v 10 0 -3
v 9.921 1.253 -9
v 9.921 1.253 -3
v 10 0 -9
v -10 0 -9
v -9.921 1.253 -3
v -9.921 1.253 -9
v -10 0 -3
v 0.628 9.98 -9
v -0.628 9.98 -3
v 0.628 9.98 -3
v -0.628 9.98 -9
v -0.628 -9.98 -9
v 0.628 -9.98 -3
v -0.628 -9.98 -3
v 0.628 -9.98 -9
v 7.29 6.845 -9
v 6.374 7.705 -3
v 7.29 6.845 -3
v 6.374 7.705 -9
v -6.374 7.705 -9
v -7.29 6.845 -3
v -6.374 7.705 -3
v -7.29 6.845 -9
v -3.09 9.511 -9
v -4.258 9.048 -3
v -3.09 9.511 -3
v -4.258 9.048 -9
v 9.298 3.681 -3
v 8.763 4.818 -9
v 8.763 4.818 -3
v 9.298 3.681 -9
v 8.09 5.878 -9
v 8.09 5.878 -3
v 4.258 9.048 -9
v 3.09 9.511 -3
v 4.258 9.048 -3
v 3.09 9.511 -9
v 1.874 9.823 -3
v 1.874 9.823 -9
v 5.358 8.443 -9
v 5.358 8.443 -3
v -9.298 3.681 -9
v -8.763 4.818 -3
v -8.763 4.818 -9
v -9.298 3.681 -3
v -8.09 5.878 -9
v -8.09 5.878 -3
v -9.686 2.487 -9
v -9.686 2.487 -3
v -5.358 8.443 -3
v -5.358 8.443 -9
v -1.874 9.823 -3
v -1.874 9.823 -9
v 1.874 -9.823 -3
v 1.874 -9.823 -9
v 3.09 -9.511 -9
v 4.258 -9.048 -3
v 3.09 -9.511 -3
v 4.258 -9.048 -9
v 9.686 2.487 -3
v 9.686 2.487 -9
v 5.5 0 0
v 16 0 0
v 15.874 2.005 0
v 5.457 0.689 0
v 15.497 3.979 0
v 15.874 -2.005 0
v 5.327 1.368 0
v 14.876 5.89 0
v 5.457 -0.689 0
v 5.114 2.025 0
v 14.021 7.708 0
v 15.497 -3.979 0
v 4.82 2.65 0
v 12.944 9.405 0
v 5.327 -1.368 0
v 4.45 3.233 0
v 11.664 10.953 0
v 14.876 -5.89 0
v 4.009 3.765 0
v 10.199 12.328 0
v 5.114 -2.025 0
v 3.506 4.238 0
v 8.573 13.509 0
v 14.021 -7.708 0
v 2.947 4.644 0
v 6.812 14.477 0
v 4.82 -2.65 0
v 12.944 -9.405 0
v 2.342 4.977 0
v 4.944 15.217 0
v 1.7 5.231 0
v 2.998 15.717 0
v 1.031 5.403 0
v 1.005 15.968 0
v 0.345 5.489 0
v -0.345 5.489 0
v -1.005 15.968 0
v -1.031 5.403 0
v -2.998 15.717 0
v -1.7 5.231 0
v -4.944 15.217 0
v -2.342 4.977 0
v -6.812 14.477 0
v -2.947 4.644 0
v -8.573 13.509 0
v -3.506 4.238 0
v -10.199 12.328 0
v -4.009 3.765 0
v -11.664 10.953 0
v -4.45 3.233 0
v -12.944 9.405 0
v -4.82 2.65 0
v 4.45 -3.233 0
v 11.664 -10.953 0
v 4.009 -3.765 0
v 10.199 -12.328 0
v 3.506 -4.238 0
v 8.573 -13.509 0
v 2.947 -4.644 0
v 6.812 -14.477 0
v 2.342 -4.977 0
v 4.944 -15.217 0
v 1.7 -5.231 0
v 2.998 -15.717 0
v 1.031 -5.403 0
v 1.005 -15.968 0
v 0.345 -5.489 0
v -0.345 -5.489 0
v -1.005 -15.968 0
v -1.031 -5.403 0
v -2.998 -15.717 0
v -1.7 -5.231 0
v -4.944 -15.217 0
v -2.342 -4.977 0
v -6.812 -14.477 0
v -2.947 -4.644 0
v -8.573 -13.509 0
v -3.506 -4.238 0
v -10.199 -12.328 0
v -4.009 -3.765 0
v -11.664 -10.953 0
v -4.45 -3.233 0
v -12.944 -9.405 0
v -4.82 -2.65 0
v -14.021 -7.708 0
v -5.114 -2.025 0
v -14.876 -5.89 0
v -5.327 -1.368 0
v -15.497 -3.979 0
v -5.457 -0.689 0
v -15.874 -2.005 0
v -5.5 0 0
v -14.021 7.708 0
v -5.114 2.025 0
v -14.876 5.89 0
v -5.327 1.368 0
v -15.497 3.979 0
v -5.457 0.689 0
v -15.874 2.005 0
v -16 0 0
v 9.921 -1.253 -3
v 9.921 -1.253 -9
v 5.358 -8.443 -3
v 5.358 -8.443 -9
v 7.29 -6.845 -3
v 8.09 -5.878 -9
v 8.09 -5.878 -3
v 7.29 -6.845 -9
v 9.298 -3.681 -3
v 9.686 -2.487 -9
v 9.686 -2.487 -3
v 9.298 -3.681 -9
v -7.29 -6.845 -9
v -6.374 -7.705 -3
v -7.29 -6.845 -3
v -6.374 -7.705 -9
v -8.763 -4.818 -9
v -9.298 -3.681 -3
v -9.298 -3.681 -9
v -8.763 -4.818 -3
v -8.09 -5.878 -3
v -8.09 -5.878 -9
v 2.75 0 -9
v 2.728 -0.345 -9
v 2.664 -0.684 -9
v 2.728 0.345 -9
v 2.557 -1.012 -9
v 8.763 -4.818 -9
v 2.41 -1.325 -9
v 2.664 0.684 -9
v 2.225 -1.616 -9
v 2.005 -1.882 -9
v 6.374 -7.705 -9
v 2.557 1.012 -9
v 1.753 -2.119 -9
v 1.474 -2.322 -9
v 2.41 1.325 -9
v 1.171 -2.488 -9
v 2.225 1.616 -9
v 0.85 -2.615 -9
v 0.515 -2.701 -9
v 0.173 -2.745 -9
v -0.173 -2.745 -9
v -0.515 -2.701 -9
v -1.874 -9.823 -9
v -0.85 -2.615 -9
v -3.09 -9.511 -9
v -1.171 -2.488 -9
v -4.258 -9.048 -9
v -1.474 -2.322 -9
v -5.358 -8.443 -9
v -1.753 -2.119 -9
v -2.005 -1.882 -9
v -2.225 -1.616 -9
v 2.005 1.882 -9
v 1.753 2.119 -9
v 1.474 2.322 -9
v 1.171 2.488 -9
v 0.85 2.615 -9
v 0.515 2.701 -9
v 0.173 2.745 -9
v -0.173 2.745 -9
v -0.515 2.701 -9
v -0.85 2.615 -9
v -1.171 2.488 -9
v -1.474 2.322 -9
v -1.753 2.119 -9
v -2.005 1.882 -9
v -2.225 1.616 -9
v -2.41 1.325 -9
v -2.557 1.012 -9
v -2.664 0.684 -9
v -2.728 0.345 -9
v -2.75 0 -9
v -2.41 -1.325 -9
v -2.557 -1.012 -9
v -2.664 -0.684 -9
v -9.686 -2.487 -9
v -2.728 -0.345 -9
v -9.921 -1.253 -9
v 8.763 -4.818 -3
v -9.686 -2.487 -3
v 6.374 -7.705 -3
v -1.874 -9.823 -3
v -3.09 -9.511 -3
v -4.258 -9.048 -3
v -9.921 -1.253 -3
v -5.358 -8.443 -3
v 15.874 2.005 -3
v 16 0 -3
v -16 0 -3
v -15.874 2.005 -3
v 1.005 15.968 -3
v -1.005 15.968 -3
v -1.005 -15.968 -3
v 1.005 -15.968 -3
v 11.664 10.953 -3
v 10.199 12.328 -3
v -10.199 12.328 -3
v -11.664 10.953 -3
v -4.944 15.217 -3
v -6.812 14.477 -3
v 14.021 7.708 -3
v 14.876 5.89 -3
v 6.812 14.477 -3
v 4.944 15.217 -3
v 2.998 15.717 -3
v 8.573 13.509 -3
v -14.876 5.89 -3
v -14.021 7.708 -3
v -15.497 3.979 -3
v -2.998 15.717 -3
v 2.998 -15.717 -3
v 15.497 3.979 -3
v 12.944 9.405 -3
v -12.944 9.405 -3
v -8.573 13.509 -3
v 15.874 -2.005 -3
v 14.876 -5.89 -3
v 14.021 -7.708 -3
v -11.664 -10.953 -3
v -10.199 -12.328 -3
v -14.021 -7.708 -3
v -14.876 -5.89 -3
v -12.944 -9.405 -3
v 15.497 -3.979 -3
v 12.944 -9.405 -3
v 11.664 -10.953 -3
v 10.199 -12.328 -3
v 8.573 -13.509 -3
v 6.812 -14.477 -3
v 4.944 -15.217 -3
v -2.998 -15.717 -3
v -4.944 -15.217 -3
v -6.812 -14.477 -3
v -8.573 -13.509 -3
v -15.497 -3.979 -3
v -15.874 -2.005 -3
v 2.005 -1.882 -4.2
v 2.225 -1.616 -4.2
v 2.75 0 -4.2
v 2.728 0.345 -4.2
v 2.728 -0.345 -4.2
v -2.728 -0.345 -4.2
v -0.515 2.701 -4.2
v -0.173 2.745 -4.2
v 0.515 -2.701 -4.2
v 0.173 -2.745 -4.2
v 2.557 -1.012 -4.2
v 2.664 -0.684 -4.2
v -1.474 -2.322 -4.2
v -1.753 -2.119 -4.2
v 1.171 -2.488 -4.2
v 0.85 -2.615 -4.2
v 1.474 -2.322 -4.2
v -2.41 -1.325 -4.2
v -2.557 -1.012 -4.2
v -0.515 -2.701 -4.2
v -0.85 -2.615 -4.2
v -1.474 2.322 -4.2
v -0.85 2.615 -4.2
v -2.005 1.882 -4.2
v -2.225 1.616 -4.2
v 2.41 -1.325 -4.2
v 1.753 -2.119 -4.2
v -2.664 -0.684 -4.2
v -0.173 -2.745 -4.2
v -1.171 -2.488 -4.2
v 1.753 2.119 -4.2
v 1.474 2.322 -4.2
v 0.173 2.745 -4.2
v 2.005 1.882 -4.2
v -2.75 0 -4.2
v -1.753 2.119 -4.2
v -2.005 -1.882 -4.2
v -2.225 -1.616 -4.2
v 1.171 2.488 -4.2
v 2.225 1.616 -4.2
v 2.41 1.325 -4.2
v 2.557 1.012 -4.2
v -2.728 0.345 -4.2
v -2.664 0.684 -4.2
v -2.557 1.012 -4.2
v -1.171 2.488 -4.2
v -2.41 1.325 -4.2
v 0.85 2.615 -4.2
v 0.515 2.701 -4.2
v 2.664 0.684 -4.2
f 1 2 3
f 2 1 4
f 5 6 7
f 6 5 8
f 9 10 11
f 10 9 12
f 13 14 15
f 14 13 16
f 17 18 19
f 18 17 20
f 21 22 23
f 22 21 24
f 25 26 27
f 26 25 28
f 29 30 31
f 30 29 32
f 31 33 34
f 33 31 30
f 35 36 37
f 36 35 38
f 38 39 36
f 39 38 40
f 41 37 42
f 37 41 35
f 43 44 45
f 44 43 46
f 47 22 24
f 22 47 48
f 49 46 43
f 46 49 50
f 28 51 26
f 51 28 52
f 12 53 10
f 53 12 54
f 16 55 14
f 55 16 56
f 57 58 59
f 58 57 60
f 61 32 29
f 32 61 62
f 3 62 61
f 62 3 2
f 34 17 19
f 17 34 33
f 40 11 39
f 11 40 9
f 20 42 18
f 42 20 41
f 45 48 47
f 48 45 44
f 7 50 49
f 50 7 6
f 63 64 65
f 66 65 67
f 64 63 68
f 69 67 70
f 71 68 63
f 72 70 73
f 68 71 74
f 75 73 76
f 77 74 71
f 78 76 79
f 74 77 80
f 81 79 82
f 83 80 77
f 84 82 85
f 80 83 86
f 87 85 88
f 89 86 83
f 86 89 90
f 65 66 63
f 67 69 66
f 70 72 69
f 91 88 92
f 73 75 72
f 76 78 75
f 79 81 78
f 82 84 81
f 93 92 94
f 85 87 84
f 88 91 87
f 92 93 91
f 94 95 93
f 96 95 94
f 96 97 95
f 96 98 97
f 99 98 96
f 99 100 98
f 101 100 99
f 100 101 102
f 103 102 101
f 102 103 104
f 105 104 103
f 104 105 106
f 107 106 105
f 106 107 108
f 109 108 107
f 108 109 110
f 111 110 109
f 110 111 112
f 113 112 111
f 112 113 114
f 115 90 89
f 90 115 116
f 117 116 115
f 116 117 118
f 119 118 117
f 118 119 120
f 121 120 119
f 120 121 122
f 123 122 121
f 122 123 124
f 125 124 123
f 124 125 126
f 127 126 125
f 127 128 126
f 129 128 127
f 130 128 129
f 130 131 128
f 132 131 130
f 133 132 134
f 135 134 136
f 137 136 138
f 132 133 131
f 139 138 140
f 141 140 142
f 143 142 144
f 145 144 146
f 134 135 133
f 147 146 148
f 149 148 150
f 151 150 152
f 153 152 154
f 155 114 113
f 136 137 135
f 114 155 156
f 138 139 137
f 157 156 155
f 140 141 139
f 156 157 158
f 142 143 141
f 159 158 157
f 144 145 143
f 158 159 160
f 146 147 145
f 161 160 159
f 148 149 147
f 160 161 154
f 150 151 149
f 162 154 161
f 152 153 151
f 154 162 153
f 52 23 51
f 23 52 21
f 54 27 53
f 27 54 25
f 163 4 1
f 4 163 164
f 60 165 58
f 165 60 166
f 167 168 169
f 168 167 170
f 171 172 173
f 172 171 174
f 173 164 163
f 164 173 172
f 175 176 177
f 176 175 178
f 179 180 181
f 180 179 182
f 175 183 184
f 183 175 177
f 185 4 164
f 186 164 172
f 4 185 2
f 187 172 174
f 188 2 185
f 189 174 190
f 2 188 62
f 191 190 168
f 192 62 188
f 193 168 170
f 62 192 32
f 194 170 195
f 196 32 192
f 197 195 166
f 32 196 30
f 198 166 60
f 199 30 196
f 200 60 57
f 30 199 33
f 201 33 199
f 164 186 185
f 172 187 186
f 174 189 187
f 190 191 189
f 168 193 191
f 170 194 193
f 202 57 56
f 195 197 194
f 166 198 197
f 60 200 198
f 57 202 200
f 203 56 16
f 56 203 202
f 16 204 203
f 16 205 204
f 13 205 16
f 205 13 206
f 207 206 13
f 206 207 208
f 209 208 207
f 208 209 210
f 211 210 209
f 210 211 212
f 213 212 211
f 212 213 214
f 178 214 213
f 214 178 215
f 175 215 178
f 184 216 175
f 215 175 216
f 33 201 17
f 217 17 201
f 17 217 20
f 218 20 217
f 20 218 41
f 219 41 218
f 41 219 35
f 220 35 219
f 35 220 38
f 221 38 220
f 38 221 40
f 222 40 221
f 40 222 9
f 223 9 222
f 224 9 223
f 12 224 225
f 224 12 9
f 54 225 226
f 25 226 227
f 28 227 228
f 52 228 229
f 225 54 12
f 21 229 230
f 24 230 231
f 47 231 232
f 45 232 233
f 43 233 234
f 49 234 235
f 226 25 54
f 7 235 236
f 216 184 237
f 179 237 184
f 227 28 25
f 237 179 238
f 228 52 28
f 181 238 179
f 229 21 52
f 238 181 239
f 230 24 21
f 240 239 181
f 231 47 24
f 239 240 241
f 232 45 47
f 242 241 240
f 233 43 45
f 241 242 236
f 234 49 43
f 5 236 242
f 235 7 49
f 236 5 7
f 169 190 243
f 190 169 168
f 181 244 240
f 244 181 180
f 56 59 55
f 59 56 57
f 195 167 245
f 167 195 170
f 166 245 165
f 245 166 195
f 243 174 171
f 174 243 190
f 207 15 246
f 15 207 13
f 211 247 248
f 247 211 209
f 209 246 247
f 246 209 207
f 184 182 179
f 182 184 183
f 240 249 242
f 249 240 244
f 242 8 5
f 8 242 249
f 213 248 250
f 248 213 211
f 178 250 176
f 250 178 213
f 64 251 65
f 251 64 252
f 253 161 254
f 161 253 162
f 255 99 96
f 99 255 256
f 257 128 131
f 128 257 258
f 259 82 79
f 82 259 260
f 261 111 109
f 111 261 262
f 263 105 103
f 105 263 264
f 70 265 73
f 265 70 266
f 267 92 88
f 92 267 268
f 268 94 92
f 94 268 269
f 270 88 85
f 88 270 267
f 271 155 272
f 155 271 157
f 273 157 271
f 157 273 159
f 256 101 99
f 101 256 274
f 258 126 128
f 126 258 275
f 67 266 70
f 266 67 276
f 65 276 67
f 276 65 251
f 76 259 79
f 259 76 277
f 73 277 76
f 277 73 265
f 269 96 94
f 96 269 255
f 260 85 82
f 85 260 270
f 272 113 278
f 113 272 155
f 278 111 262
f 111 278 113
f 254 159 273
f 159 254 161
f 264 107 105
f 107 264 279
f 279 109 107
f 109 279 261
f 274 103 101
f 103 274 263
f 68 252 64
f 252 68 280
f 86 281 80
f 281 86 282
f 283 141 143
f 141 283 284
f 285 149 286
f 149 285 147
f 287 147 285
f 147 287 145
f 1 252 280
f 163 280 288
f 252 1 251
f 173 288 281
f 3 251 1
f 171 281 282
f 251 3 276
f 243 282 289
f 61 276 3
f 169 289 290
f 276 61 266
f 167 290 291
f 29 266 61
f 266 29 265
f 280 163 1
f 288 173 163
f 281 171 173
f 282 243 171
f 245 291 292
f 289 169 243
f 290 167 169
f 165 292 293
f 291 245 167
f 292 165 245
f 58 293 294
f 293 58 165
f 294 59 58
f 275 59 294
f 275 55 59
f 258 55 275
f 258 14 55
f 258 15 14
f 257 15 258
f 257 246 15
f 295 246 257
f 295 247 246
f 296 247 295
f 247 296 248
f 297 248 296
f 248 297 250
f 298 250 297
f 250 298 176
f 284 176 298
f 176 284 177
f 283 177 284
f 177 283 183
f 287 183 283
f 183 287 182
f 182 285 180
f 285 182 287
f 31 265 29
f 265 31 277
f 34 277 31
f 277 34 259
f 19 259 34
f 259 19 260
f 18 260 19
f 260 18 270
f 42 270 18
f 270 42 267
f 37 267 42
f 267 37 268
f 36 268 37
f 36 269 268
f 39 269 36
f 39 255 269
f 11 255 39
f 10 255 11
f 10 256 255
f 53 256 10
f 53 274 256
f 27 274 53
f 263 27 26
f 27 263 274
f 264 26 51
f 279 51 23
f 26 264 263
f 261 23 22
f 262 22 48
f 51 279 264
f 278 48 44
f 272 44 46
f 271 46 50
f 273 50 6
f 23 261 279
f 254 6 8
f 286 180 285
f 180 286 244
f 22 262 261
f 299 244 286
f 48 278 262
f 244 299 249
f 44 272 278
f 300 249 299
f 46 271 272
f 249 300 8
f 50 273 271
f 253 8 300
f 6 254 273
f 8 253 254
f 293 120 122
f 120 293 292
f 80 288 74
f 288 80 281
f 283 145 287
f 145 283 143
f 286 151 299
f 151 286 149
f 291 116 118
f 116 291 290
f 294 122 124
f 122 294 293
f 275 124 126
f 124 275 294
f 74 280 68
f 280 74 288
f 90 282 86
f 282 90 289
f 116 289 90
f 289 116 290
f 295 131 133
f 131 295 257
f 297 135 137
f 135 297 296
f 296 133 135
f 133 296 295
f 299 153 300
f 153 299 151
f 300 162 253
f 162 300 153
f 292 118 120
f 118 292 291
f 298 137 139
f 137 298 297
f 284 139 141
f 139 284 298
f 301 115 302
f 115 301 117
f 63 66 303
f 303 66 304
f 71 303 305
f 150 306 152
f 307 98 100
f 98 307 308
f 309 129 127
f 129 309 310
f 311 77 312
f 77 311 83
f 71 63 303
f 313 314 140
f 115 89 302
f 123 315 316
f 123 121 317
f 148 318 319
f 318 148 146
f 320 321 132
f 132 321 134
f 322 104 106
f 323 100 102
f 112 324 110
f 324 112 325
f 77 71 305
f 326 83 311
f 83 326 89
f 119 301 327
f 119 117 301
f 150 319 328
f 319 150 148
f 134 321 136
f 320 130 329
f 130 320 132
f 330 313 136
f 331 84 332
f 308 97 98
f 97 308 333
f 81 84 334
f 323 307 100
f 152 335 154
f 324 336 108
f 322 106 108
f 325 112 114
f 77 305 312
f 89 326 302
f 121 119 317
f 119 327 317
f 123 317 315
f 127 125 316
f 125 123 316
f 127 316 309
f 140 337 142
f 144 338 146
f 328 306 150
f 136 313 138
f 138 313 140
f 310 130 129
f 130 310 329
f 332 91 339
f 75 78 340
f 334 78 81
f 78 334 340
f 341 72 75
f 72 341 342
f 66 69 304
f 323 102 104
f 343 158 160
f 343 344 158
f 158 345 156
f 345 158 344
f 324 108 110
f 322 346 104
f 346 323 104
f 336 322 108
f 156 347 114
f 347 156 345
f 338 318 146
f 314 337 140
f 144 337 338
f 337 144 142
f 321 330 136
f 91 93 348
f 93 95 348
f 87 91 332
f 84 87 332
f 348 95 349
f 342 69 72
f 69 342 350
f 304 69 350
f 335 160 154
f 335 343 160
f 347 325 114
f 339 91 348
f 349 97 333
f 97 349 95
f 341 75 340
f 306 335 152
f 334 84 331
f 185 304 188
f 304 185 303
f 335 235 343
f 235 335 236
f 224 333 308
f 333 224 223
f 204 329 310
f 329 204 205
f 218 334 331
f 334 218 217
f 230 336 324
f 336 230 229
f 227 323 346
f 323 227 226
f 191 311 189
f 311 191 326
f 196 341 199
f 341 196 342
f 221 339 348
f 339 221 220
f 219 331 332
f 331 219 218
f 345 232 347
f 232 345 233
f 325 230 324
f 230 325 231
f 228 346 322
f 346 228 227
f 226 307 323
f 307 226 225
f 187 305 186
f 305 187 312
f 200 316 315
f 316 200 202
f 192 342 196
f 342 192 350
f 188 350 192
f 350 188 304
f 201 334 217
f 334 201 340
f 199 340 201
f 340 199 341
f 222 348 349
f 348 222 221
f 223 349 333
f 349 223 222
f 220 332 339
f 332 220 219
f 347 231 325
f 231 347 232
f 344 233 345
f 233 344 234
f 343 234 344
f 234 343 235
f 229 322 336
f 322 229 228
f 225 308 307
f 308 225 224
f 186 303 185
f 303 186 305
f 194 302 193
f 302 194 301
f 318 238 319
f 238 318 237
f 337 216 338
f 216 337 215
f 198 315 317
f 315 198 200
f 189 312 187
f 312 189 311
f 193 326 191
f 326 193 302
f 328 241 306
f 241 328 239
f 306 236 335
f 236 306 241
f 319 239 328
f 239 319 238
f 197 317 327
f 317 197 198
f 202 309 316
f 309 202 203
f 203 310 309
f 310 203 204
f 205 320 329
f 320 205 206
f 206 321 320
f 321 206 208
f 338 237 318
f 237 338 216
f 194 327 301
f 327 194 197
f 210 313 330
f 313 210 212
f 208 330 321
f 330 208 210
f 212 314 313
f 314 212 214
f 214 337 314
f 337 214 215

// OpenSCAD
$fn = 50;


difference() {
	union() {
		translate(v = [0, 0, -9.0000000000]) {
			cylinder(h = 9, r = 10.0000000000);
		}
		translate(v = [0, 0, -3.0000000000]) {
			cylinder(h = 3, r = 16.0000000000);
		}
	}
	union() {
		translate(v = [0, 0, 0]) {
			rotate(a = [0, 0, 0]) {
				difference() {
					union() {
						#translate(v = [0, 0, -9.0000000000]) {
							cylinder(h = 9, r = 2.2500000000);
						}
						#translate(v = [0, 0, -4.2000000000]) {
							cylinder(h = 4.2000000000, r = 10.0000000000, r1 = 2.7500000000, r2 = 5.5000000000);
						}
						#translate(v = [0, 0, -9.0000000000]) {
							cylinder(h = 9, r = 2.7500000000);
						}
						#translate(v = [0, 0, -9.0000000000]) {
							cylinder(h = 9, r = 2.2500000000);
						}
					}
					union();
				}
			}
		}
	}
}
